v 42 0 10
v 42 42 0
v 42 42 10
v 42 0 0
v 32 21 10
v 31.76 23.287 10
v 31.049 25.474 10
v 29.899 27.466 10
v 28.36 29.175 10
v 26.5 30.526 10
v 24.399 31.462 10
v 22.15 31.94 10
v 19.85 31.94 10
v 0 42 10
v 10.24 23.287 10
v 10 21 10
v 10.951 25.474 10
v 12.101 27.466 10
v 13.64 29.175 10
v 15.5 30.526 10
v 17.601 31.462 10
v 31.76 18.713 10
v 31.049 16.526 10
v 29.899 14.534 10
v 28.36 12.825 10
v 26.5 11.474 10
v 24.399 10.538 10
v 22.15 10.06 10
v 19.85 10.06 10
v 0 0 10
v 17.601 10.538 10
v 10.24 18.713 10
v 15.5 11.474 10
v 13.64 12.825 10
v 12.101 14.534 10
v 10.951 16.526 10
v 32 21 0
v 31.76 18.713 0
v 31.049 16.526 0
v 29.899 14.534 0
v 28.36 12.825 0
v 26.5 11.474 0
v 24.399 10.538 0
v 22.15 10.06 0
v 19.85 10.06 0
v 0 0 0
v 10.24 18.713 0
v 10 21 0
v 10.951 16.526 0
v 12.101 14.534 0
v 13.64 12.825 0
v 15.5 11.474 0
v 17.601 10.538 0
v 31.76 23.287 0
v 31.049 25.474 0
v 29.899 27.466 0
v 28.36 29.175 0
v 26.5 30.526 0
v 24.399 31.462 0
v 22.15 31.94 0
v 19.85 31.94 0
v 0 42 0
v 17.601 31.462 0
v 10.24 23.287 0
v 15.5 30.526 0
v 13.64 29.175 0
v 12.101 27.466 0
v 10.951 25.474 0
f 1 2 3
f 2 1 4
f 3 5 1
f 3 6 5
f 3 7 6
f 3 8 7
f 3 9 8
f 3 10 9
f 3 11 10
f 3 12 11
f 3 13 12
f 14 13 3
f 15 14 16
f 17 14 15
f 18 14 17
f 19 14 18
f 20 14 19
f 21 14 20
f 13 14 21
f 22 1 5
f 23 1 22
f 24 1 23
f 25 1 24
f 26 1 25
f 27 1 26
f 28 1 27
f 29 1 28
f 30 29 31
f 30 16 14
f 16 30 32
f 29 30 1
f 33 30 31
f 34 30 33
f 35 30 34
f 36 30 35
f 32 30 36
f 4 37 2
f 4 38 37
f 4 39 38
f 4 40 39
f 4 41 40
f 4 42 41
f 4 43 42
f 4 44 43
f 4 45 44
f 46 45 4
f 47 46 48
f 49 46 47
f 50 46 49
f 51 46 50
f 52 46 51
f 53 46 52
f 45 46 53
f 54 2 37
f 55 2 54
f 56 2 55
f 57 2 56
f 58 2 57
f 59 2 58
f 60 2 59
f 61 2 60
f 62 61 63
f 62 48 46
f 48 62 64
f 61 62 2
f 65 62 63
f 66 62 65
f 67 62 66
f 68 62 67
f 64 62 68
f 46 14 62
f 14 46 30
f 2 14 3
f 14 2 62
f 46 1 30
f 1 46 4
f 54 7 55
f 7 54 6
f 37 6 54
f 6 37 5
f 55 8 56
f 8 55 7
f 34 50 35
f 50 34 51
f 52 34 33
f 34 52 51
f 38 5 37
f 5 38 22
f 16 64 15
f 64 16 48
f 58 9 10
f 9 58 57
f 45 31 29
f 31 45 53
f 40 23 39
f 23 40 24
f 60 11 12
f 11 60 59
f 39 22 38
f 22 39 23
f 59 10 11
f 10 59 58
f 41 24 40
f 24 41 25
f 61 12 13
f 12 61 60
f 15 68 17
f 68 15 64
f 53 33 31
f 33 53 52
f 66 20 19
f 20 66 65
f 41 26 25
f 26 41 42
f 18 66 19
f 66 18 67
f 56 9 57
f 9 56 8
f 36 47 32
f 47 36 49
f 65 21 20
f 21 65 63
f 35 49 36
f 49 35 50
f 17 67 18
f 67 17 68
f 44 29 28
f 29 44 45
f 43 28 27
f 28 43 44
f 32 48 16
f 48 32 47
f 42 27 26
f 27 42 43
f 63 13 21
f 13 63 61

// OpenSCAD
// Mount for NEMA17 stepper motor
module stepper_mount(width=42, depth=42, height=10) {
    difference() {
        cube([width, depth, height]);
        translate([width/2, depth/2, 0])
            cylinder(d=22, h=height);
    }
}

stepper_mount();
